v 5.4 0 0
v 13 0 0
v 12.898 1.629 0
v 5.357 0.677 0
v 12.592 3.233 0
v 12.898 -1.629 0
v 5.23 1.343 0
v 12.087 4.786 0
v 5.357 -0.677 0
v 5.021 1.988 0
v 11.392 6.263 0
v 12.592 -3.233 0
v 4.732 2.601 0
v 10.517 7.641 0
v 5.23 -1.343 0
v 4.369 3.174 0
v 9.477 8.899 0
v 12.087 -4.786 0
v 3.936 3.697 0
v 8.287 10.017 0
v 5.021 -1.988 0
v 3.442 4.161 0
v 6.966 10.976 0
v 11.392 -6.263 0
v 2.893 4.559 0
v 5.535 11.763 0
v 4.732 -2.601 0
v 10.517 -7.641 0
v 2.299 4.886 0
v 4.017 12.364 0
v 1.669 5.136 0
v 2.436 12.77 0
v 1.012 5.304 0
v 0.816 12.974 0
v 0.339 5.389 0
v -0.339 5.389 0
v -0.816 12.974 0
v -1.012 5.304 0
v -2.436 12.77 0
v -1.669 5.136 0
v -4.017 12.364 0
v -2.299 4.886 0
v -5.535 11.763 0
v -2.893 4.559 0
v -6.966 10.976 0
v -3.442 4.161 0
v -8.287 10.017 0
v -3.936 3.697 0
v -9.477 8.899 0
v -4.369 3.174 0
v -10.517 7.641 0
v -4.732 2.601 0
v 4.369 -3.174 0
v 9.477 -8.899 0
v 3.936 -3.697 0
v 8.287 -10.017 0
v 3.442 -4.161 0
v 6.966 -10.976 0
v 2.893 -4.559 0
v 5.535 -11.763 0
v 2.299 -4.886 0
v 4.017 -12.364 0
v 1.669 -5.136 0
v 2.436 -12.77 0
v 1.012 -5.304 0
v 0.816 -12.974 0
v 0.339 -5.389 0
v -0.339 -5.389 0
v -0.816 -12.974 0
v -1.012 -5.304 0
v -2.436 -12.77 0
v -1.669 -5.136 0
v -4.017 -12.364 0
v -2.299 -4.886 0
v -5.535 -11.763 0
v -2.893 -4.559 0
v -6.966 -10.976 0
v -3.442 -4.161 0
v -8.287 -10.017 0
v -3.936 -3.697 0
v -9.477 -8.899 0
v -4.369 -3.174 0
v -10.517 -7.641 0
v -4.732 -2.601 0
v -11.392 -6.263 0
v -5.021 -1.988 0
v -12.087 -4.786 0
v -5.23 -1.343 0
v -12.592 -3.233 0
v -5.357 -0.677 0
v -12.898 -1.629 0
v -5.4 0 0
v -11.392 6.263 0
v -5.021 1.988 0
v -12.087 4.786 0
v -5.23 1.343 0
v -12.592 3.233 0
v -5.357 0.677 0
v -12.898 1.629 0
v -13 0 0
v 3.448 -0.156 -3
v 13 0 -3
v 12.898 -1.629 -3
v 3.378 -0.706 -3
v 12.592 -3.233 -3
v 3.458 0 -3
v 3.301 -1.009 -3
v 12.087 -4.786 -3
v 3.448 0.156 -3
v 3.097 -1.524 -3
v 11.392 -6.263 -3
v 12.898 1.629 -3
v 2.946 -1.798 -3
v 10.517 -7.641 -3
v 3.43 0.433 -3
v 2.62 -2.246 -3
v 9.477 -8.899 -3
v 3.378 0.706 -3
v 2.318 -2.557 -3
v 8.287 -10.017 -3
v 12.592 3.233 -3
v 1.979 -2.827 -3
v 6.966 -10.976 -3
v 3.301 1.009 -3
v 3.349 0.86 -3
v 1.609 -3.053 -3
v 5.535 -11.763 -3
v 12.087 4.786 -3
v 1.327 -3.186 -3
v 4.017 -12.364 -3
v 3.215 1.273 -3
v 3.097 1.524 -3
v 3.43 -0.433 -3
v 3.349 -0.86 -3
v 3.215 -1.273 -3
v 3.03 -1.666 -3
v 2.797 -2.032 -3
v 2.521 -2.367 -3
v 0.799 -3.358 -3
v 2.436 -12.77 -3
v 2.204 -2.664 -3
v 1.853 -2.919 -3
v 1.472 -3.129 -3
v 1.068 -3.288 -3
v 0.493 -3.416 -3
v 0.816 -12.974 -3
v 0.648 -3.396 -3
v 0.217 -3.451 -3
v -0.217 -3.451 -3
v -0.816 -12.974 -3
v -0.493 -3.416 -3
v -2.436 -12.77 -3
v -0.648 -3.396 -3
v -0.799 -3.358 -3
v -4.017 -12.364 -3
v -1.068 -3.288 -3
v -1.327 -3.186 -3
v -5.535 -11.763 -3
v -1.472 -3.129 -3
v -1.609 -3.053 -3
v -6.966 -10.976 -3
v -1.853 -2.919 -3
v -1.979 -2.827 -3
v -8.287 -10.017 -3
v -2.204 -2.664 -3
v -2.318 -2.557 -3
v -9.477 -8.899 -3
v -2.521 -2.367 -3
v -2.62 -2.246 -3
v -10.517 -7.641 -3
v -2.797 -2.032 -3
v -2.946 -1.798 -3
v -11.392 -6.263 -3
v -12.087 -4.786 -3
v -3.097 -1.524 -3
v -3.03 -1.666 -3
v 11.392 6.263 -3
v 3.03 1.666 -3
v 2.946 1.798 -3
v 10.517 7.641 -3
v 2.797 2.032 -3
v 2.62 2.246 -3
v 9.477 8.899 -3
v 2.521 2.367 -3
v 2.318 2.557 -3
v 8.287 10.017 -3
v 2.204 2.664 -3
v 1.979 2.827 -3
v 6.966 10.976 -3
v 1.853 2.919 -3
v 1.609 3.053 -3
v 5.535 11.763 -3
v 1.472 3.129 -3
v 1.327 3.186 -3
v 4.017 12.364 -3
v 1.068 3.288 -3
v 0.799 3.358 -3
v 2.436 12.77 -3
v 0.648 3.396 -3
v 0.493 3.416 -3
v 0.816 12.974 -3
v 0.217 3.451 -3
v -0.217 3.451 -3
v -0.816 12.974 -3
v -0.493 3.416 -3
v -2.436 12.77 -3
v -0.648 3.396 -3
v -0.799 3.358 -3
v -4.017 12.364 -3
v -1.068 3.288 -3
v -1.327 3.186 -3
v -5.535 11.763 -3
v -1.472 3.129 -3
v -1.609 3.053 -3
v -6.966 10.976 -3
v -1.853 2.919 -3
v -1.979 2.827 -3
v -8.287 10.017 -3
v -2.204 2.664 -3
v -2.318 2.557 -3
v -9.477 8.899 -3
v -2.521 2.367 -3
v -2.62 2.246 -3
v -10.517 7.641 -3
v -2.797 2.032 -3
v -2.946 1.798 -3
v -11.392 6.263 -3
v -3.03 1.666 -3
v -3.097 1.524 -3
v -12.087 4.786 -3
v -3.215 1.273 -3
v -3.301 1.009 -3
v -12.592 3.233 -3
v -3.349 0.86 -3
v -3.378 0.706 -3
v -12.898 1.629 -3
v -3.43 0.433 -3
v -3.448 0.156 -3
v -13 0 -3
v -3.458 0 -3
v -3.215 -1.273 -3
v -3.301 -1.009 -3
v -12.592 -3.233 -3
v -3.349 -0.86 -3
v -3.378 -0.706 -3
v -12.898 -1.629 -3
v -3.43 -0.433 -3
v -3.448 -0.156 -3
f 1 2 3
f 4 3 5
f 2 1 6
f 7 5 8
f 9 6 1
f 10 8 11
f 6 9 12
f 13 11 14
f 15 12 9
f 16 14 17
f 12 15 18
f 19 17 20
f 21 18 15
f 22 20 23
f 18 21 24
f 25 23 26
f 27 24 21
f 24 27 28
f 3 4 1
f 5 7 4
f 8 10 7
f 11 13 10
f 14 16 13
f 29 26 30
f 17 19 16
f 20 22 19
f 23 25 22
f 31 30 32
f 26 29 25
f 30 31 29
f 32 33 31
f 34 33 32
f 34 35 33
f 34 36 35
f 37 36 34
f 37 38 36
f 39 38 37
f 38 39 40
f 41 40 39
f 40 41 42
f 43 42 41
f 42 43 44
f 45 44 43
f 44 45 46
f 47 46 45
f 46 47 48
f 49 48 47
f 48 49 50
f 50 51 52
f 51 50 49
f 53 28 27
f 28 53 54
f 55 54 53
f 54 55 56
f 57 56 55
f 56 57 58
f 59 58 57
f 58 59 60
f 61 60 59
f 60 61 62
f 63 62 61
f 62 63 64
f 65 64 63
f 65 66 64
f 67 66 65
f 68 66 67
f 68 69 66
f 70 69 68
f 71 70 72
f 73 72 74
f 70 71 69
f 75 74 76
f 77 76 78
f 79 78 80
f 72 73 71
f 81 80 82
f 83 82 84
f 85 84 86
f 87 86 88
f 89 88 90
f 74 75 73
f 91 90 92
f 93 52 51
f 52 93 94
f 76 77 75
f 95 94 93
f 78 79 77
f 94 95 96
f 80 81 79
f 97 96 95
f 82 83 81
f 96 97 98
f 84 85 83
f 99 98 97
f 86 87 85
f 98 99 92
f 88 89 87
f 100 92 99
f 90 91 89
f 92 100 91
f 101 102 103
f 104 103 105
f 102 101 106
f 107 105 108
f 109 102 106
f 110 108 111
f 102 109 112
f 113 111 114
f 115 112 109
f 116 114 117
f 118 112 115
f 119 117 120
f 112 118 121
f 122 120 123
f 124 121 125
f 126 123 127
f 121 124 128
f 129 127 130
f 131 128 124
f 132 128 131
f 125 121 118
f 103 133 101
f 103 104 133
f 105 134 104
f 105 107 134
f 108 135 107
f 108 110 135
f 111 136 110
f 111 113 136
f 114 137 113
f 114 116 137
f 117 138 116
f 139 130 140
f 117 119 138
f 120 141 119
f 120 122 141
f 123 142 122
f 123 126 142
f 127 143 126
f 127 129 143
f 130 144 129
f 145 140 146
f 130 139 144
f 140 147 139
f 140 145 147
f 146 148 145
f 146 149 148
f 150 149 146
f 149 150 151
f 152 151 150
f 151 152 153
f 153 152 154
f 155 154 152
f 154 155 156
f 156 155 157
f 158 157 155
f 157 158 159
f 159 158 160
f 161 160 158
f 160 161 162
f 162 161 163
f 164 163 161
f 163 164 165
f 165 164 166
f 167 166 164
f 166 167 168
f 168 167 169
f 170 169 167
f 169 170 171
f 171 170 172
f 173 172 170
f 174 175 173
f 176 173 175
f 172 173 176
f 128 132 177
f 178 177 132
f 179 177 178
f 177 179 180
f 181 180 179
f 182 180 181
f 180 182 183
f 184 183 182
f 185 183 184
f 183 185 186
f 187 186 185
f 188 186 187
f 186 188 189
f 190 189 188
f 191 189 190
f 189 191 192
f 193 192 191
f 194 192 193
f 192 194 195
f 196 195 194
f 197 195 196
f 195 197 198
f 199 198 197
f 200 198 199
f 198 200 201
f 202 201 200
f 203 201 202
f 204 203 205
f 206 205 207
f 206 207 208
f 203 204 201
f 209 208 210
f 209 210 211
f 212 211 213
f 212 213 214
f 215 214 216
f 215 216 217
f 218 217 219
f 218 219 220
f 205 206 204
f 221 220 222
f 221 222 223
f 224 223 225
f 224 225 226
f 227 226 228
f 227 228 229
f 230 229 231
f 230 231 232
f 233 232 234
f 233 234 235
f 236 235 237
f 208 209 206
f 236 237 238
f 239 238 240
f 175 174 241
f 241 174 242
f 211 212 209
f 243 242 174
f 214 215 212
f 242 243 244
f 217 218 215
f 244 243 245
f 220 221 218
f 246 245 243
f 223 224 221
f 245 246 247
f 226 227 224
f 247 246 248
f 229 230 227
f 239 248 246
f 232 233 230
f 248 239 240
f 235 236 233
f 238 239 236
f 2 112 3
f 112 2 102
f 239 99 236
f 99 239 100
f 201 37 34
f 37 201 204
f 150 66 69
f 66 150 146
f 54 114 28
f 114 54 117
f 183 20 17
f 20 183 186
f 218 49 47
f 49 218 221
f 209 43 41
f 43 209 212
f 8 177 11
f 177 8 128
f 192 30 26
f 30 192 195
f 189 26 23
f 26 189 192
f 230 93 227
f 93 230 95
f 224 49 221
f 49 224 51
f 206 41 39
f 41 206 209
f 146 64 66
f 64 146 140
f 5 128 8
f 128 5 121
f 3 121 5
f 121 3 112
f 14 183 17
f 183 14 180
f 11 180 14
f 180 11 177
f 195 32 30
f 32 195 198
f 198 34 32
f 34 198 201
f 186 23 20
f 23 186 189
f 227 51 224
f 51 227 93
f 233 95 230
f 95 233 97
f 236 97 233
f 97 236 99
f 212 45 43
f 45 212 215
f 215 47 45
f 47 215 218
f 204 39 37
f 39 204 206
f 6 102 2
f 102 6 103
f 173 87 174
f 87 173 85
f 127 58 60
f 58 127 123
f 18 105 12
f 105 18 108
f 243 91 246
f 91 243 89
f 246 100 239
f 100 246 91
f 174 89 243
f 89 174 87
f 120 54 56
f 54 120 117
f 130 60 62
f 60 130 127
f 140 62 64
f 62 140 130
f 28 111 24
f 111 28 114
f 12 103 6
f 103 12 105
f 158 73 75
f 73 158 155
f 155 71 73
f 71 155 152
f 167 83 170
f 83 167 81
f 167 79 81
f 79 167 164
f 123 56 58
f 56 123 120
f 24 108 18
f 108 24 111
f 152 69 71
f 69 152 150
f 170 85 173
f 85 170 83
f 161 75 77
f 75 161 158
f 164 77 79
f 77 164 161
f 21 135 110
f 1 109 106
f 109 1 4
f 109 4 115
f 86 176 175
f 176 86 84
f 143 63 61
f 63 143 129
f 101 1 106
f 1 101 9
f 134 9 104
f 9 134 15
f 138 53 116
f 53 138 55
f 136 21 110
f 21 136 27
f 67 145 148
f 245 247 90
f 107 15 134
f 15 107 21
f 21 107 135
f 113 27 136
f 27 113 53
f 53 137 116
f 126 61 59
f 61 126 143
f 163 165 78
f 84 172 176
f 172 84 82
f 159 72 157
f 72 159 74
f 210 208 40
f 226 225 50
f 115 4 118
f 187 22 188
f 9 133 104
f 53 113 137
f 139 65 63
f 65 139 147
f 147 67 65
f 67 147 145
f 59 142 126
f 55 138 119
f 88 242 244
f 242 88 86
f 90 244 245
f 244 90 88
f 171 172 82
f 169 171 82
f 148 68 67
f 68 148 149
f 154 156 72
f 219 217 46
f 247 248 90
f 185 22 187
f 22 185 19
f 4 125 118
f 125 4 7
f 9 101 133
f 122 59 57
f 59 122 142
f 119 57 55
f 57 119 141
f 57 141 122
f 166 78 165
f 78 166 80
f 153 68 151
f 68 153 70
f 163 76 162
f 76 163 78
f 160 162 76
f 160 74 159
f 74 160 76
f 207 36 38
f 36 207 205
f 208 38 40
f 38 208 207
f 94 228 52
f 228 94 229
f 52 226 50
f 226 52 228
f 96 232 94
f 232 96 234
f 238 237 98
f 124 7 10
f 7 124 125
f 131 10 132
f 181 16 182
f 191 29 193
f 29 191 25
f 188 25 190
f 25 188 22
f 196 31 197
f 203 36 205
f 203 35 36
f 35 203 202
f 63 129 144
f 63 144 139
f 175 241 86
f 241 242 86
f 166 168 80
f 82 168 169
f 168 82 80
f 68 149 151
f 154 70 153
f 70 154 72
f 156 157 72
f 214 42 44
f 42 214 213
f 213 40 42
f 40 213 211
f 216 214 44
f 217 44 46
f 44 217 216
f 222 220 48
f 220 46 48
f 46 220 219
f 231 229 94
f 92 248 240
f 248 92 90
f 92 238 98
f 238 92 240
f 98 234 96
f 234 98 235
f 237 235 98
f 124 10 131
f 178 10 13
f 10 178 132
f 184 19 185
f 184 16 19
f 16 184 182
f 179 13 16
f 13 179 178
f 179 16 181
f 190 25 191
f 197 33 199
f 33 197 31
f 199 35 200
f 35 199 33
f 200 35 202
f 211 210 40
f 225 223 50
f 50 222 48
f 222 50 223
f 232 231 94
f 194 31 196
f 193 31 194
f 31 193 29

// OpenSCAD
$fn = 50;


difference() {
	union() {
		translate(v = [0, 0, -3.0000000000]) {
			cylinder(h = 3, r = 10.0000000000);
		}
		translate(v = [0, 0, -3.0000000000]) {
			cylinder(h = 3, r = 13.0000000000);
		}
	}
	union() {
		translate(v = [0, 0, 0]) {
			rotate(a = [0, 0, 0]) {
				difference() {
					union() {
						#translate(v = [0, 0, -3.0000000000]) {
							cylinder(h = 3, r = 2.6000000000);
						}
						#translate(v = [0, 0, -3.9000000000]) {
							cylinder(h = 3.9000000000, r = 10.0000000000, r1 = 2.8750000000, r2 = 5.4000000000);
						}
						#translate(v = [0, 0, -3.0000000000]) {
							cylinder(h = 3, r = 2.8750000000);
						}
						#translate(v = [0, 0, -3.0000000000]) {
							cylinder(h = 3, r = 2.6000000000);
						}
					}
					union();
				}
			}
		}
	}
}
